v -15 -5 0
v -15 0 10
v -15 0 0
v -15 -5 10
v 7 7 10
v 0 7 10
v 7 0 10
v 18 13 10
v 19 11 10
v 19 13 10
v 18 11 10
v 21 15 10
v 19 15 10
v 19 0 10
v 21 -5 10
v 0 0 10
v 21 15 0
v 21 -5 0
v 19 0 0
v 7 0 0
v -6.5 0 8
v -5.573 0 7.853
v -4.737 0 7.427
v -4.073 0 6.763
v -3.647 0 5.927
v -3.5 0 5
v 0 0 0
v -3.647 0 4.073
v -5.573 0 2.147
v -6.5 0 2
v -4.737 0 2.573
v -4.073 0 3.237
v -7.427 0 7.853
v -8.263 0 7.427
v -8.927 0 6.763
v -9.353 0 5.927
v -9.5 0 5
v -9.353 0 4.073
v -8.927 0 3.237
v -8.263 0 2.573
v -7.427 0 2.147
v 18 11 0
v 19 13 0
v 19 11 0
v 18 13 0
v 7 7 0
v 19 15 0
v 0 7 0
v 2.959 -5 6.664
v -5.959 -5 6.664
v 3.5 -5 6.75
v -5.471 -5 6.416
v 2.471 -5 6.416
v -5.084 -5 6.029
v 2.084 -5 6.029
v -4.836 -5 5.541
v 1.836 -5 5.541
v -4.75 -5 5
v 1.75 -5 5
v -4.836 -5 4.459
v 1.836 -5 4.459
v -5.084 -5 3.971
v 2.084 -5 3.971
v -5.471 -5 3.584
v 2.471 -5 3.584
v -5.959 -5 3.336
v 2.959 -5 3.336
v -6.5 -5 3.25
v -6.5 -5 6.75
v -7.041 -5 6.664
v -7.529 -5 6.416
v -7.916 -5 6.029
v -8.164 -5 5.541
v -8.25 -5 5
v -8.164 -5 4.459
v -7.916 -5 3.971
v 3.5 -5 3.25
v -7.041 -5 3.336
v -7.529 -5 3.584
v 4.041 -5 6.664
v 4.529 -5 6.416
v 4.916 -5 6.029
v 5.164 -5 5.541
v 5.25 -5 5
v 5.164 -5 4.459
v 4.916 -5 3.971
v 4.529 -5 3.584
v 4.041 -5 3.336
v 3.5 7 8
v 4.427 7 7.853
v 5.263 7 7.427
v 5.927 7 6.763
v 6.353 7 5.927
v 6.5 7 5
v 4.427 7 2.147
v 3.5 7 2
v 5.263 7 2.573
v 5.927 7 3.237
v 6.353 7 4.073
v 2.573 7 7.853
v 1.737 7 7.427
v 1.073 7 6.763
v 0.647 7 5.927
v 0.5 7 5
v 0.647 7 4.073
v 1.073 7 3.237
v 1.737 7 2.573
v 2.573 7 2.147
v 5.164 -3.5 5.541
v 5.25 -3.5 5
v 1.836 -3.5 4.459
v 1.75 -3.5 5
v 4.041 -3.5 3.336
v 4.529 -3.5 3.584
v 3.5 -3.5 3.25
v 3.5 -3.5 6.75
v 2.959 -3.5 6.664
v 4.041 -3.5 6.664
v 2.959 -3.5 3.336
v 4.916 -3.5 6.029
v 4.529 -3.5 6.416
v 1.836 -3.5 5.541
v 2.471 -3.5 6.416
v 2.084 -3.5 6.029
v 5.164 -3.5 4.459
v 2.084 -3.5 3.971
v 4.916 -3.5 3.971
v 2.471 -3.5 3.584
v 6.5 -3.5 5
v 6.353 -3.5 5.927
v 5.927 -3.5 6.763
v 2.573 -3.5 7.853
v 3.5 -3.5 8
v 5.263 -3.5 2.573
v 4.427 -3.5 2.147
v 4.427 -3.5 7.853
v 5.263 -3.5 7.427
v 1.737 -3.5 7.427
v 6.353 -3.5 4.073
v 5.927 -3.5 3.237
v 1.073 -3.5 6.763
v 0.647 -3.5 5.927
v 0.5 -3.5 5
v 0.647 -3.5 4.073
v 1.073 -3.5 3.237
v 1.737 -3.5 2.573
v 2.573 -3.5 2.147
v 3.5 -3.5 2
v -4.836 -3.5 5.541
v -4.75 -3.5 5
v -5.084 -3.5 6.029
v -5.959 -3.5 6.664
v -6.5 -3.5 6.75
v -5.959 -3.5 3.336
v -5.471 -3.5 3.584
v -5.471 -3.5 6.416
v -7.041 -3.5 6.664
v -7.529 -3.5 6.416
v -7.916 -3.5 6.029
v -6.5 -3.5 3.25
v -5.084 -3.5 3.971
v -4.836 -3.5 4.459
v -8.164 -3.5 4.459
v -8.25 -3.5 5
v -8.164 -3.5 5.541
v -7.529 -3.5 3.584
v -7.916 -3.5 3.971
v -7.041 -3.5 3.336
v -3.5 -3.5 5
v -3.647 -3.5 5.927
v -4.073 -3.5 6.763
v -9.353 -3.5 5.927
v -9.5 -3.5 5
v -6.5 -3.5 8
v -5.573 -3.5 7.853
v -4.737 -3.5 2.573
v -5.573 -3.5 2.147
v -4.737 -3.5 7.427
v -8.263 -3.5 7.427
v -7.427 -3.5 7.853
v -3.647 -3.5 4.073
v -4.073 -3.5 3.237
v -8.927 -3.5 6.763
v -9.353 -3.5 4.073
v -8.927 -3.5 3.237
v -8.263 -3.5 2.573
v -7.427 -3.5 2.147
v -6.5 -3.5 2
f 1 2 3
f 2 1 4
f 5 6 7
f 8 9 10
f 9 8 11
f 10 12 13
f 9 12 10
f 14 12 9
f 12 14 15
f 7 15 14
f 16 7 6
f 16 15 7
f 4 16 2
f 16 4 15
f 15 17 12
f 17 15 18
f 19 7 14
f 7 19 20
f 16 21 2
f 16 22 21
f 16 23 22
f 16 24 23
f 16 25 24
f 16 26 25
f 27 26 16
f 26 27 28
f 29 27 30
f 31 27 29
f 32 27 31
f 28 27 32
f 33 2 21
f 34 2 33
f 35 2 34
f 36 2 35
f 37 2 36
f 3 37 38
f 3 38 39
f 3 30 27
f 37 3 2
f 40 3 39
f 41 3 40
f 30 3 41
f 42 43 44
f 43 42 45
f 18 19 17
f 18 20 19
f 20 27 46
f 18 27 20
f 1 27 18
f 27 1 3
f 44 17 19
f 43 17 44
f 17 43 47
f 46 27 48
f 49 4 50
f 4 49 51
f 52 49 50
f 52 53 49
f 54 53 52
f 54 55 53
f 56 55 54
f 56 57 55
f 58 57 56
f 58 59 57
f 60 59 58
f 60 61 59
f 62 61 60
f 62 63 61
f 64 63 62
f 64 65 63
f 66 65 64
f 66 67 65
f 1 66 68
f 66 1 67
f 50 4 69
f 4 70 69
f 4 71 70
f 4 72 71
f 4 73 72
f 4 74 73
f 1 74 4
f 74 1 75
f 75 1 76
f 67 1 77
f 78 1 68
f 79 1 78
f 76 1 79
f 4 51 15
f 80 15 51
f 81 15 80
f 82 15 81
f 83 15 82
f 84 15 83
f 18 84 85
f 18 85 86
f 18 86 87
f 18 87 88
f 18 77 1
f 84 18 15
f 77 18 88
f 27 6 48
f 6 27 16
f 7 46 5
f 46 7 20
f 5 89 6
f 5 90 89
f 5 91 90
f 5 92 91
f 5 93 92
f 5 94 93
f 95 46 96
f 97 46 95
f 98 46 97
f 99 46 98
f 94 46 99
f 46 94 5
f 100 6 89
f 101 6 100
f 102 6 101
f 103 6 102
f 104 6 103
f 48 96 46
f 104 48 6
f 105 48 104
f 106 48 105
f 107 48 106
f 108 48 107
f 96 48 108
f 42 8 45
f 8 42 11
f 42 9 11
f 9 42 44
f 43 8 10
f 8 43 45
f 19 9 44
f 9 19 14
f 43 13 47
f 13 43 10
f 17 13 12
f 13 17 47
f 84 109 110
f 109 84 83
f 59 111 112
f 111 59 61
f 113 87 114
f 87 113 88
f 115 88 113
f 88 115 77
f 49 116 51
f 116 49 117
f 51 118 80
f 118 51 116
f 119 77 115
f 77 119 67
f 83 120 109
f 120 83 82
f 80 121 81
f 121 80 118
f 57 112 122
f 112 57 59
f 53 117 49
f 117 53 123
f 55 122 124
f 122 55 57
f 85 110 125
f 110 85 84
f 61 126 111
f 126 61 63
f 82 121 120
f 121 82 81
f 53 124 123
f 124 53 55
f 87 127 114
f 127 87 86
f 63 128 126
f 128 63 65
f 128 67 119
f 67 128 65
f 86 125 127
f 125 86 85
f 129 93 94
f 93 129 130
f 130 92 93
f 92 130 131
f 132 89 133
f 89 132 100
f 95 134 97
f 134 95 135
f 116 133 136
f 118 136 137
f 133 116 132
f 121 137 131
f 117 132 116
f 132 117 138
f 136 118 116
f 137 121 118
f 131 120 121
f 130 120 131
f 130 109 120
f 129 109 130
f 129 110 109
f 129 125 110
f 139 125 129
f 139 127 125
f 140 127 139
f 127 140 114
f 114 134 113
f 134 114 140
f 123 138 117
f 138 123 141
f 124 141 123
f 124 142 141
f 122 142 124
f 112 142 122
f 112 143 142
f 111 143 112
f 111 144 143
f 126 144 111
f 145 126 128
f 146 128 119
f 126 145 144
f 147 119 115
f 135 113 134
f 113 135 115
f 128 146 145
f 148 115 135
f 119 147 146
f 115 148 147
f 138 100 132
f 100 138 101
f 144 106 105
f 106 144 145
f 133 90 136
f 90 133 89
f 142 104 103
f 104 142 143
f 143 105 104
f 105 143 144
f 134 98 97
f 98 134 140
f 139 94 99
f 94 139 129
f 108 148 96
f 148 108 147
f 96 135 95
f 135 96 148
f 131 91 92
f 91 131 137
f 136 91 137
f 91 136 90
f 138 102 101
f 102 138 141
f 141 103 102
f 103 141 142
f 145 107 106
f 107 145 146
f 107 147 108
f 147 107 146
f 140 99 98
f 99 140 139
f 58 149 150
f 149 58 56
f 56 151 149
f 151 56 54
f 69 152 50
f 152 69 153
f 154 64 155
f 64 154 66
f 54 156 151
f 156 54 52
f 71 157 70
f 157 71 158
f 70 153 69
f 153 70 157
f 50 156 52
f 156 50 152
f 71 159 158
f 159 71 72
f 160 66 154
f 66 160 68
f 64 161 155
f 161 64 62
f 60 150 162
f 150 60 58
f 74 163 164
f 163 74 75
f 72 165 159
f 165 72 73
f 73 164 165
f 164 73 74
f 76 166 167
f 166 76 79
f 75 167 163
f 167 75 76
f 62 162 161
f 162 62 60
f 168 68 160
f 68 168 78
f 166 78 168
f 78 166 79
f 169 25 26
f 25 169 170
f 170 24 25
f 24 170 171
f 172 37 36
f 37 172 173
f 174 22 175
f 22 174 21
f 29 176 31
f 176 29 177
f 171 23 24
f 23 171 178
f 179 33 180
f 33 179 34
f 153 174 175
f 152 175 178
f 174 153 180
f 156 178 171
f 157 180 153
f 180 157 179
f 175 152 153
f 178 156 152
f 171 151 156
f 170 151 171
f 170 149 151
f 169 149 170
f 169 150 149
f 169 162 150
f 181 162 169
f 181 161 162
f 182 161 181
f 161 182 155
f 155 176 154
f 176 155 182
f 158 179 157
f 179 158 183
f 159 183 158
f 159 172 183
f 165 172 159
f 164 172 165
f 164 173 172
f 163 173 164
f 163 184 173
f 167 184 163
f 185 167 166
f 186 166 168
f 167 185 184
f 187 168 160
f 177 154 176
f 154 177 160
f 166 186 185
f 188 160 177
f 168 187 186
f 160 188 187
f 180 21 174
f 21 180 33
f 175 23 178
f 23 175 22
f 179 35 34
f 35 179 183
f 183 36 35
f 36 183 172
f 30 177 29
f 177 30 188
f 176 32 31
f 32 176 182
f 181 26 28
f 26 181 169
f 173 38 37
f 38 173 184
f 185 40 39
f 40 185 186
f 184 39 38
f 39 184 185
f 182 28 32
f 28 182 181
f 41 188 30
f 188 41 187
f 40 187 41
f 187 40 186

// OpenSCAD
vyska=10;
$fn=20;
difference(){
    union(){
        translate([-4-11,-5,0])cube([36,5,vyska]);//stycna plocha
        cube([7,7,vyska]);//zasouvac9 klin
        translate([11+8-1,11,0])cube([2,2,vyska]);//pojistka
        translate([11+8,0,0])cube([2,15,vyska]);//plocha pojistky
    }
    //srouby a zapusteni
    translate([3.5,10,vyska/2])rotate([90,0,0])cylinder(d=3.5,h=50);
    translate([3.5,15-3.5,vyska/2])rotate([90,0,0])cylinder(d=6,h=15);

    translate([3.5-10,10,vyska/2])rotate([90,0,0])cylinder(d=3.5,h=50);
    translate([3.5-10,15-3.5,vyska/2])rotate([90,0,0])cylinder(d=6,h=15);
}
